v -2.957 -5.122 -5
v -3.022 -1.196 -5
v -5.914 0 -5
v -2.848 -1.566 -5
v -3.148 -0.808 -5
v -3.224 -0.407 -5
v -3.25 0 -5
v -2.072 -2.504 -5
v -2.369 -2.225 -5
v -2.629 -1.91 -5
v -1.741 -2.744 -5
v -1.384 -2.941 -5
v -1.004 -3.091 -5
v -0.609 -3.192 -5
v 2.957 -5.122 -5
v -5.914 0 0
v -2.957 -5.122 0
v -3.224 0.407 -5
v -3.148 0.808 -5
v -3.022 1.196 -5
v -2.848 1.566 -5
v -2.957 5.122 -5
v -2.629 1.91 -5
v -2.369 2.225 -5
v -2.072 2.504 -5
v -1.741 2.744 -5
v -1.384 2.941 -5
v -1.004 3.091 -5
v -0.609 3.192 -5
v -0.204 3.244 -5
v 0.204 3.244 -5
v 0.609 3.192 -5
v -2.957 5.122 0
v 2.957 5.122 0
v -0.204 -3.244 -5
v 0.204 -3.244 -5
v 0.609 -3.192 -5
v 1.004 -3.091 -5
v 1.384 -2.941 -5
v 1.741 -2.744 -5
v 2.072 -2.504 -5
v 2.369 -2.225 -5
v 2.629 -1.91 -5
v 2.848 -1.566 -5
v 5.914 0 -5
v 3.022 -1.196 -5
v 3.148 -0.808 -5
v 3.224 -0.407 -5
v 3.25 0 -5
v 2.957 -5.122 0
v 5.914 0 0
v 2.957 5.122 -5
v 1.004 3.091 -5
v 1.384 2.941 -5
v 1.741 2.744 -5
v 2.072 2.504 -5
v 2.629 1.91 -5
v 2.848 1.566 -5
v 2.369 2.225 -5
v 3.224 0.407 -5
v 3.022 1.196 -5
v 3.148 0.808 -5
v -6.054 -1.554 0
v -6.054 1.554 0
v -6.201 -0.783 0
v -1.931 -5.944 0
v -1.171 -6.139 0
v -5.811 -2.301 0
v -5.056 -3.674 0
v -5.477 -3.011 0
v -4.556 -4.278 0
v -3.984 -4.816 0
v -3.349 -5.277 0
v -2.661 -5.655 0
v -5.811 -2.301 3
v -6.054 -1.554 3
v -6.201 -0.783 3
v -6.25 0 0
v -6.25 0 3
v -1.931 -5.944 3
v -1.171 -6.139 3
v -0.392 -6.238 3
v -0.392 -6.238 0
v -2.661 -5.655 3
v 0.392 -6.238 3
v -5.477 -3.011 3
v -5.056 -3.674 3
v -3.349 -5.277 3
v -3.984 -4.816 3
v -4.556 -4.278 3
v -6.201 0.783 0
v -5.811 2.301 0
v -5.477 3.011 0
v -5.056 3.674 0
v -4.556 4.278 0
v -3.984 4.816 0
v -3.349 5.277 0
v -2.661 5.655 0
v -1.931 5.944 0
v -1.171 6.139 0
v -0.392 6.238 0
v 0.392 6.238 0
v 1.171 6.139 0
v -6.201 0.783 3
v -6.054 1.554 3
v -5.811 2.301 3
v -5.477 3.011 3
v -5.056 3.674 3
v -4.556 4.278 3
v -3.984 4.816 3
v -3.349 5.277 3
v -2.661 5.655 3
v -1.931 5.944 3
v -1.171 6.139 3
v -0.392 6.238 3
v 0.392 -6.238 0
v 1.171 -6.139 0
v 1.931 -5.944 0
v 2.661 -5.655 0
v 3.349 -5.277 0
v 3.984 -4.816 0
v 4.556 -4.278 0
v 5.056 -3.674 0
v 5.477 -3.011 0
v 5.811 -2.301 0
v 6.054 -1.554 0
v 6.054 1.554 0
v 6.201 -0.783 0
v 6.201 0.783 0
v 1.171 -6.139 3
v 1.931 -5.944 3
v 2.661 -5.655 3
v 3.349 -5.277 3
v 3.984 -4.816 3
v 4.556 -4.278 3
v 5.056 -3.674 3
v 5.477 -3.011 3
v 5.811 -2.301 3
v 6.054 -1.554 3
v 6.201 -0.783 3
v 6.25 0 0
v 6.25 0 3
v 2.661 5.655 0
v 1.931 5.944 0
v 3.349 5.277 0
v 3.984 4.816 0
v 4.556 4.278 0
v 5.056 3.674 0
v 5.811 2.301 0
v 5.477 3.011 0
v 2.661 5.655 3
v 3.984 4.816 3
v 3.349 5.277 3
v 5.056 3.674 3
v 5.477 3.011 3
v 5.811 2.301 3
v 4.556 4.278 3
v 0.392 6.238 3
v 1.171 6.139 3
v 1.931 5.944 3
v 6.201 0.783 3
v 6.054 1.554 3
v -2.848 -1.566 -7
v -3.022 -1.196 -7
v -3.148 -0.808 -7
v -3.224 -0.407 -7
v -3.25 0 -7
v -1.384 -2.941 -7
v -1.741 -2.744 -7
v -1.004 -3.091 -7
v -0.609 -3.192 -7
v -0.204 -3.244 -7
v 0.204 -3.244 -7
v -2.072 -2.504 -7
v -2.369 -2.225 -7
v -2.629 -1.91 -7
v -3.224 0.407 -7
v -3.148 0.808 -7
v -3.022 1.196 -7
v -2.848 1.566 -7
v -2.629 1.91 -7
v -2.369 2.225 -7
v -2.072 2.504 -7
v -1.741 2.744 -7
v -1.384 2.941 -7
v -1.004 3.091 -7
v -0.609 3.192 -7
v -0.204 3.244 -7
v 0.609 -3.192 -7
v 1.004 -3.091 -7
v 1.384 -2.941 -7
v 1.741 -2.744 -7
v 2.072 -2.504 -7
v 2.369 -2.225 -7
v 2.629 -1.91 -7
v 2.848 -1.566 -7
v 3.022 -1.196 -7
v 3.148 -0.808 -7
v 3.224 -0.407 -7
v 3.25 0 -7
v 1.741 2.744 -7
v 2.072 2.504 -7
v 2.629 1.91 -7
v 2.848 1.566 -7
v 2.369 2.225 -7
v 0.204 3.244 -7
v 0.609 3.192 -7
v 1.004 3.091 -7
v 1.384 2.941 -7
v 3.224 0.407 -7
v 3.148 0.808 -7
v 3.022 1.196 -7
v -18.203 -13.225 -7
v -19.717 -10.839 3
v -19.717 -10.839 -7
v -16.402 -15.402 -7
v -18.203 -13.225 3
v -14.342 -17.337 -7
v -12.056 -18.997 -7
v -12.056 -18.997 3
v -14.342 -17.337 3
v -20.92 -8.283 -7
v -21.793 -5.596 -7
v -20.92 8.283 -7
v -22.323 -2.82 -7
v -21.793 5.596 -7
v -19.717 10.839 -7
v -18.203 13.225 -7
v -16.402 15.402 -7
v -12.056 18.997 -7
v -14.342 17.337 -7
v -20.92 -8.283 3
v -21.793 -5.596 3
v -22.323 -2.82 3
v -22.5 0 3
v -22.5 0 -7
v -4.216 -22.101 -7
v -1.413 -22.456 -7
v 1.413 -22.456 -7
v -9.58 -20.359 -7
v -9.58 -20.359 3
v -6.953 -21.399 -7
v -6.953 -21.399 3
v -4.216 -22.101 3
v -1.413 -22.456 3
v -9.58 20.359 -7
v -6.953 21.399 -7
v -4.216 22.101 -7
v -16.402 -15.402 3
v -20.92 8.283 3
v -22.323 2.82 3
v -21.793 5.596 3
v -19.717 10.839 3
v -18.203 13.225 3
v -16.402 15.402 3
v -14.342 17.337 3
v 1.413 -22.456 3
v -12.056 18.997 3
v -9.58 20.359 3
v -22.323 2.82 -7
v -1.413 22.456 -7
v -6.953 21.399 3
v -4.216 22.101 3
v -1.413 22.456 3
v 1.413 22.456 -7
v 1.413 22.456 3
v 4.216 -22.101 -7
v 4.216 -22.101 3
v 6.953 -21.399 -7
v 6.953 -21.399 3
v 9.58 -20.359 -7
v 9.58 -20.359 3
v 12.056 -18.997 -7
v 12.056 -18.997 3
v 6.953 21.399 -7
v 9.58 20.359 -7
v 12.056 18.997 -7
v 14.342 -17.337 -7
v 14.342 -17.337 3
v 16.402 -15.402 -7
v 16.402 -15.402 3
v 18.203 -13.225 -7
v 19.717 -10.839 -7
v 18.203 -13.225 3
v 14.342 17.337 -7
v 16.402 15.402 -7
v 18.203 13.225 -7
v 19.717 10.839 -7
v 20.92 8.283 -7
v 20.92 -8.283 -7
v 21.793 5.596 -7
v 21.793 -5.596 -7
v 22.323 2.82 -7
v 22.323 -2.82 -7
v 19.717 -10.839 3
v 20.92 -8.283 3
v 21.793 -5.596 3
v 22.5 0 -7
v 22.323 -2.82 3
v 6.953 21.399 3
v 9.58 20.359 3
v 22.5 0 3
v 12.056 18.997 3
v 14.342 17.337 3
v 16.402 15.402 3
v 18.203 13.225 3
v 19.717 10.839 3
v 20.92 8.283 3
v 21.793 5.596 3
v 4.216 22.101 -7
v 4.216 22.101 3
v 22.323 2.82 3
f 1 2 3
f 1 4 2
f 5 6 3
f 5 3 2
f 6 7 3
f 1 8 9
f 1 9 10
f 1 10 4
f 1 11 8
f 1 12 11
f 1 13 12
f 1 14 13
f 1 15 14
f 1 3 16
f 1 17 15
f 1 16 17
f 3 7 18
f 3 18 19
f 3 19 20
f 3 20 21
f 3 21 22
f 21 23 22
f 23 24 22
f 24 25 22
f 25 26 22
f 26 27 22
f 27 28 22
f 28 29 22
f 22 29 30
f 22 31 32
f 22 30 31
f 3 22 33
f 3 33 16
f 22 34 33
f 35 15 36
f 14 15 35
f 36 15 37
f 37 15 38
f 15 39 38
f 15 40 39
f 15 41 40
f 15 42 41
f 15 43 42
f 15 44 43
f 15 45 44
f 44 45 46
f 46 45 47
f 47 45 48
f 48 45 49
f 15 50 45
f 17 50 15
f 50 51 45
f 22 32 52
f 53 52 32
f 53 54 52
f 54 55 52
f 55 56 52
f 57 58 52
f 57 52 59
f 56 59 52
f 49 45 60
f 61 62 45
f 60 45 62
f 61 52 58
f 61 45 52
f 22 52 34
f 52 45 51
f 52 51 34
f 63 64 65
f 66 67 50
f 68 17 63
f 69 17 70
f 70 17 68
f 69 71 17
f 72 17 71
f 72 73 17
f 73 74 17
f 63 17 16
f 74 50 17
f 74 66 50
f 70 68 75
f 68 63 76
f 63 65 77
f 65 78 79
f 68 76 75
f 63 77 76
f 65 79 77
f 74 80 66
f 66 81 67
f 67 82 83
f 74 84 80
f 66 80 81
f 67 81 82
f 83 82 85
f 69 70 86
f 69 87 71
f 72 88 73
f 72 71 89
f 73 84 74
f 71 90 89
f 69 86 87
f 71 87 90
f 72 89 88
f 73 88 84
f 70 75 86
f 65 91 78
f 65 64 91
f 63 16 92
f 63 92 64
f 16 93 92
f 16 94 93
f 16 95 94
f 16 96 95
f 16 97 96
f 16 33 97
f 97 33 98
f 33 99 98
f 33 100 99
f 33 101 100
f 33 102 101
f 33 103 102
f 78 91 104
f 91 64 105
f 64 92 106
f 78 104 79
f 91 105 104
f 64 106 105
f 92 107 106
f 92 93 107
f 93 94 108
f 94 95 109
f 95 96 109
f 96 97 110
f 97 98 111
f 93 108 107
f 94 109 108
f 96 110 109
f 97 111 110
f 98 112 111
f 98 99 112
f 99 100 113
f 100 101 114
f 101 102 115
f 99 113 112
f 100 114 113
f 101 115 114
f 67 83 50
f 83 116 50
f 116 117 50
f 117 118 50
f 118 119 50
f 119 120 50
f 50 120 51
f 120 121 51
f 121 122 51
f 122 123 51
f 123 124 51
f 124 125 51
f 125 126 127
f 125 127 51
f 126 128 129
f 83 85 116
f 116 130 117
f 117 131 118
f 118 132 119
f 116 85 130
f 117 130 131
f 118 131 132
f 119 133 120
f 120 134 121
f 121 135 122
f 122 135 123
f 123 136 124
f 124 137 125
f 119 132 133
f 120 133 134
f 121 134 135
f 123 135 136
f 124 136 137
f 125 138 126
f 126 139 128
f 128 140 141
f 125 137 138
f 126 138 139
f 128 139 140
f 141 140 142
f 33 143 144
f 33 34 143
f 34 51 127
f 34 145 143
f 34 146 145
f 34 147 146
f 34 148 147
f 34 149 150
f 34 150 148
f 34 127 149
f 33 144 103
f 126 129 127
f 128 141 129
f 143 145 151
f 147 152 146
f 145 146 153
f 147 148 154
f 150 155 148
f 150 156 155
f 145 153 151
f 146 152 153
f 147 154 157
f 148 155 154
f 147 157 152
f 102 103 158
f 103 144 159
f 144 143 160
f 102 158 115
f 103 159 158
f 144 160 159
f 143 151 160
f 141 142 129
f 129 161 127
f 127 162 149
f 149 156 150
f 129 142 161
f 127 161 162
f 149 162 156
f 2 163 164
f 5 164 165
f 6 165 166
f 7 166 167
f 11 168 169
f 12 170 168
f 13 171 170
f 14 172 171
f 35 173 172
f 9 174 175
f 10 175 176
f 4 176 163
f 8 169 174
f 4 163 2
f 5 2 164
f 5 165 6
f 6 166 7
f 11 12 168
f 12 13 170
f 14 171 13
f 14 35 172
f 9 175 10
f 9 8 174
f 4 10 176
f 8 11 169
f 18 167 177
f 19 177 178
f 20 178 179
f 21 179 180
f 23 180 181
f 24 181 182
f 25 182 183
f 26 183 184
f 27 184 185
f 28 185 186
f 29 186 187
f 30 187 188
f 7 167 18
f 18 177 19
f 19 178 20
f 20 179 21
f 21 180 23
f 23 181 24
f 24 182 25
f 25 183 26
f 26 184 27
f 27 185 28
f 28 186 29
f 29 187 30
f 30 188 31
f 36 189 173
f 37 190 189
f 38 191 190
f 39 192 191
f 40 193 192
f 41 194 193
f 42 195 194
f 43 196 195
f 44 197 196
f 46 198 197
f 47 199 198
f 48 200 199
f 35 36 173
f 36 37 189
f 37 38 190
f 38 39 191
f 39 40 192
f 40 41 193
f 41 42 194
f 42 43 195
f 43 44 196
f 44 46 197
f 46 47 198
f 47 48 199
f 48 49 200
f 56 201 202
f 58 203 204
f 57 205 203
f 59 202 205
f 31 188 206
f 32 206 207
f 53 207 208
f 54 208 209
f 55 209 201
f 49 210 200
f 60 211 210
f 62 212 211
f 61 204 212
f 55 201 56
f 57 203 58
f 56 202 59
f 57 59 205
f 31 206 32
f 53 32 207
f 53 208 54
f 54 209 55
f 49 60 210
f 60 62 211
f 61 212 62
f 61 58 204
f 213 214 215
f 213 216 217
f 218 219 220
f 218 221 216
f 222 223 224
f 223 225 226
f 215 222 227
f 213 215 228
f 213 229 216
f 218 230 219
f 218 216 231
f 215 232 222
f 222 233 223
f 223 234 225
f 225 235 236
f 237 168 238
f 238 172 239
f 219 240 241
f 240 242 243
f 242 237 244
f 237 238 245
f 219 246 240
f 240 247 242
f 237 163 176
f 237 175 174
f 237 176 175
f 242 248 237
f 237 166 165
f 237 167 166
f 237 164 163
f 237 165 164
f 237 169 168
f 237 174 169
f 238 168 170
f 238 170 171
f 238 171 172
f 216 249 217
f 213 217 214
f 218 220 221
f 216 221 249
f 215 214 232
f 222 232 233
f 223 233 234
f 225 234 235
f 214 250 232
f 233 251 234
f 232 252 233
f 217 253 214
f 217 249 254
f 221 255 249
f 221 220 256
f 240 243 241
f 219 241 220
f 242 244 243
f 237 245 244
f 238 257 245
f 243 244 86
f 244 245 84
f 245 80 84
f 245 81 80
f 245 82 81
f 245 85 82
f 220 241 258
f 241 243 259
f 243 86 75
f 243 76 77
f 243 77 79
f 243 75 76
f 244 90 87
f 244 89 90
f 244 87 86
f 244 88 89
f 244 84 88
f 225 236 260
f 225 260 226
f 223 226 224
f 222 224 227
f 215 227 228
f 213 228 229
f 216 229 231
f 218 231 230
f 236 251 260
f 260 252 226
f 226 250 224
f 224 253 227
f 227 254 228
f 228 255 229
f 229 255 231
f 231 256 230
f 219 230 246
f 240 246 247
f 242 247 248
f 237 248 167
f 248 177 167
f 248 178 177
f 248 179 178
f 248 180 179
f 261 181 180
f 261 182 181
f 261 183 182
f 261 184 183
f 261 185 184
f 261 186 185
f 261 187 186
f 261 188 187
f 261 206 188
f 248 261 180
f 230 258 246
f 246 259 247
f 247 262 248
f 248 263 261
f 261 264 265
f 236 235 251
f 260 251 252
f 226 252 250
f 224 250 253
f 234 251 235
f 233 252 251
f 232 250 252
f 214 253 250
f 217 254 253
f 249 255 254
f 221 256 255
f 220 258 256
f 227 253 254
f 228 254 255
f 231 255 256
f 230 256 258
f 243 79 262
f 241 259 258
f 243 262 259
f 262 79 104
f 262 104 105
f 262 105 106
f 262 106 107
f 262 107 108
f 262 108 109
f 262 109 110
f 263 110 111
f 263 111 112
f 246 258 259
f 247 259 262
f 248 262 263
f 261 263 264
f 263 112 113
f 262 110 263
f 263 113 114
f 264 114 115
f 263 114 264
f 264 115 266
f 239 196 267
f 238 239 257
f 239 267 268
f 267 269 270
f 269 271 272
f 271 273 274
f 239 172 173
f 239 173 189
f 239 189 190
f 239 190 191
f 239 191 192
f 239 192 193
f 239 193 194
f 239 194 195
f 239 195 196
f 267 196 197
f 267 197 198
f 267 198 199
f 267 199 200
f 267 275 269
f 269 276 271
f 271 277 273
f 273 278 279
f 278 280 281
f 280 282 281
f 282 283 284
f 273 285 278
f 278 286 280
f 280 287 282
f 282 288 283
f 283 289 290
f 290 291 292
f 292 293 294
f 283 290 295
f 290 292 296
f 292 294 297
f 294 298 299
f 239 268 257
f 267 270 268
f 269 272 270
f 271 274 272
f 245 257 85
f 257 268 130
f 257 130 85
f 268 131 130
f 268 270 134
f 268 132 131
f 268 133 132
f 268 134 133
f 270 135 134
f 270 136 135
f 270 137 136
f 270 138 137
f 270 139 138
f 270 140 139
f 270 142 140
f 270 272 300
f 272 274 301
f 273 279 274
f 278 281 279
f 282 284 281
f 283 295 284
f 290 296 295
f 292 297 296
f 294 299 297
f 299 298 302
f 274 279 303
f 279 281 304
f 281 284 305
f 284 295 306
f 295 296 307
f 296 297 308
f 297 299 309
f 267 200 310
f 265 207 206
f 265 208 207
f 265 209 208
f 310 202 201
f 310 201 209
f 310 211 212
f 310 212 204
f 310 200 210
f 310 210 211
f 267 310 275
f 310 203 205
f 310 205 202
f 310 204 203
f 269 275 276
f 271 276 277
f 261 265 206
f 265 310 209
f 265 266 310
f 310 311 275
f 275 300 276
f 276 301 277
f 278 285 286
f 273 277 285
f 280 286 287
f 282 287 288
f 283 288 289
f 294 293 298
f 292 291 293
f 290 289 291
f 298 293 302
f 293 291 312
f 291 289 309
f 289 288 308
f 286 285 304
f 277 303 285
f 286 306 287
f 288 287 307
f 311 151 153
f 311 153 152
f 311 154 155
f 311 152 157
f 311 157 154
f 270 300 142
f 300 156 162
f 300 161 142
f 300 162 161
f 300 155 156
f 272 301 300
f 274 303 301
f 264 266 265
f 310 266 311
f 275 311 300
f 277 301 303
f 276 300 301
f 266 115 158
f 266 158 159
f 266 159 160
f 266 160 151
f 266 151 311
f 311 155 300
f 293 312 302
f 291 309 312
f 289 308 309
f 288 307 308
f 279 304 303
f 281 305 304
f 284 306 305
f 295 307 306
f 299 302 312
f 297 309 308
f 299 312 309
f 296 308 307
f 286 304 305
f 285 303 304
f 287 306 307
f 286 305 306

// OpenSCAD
$fn = 50;


difference() {
	union() {
		translate(v = [0, 0, -7.0000000000]) {
			cylinder(h = 10.0000000000, r = 22.5000000000);
		}
	}
	union() {
		translate(v = [0, 0, 0]) {
			rotate(a = [0, 0, 0]) {
				difference() {
					union() {
						translate(v = [0, 0, -5]) {
							linear_extrude(height = 5) {
								polygon(points = [[5.9142500000, 0.0000000000], [2.9571250000, 5.1218907443], [-2.9571250000, 5.1218907443], [-5.9142500000, 0.0000000000], [-2.9571250000, -5.1218907443], [2.9571250000, -5.1218907443]]);
							}
						}
					}
					union();
				}
			}
		}
		#cylinder(h = 3, r = 6.2500000000);
		#translate(v = [0, 0, -100.0000000000]) {
			cylinder(h = 200, r = 3.2500000000);
		}
	}
}
